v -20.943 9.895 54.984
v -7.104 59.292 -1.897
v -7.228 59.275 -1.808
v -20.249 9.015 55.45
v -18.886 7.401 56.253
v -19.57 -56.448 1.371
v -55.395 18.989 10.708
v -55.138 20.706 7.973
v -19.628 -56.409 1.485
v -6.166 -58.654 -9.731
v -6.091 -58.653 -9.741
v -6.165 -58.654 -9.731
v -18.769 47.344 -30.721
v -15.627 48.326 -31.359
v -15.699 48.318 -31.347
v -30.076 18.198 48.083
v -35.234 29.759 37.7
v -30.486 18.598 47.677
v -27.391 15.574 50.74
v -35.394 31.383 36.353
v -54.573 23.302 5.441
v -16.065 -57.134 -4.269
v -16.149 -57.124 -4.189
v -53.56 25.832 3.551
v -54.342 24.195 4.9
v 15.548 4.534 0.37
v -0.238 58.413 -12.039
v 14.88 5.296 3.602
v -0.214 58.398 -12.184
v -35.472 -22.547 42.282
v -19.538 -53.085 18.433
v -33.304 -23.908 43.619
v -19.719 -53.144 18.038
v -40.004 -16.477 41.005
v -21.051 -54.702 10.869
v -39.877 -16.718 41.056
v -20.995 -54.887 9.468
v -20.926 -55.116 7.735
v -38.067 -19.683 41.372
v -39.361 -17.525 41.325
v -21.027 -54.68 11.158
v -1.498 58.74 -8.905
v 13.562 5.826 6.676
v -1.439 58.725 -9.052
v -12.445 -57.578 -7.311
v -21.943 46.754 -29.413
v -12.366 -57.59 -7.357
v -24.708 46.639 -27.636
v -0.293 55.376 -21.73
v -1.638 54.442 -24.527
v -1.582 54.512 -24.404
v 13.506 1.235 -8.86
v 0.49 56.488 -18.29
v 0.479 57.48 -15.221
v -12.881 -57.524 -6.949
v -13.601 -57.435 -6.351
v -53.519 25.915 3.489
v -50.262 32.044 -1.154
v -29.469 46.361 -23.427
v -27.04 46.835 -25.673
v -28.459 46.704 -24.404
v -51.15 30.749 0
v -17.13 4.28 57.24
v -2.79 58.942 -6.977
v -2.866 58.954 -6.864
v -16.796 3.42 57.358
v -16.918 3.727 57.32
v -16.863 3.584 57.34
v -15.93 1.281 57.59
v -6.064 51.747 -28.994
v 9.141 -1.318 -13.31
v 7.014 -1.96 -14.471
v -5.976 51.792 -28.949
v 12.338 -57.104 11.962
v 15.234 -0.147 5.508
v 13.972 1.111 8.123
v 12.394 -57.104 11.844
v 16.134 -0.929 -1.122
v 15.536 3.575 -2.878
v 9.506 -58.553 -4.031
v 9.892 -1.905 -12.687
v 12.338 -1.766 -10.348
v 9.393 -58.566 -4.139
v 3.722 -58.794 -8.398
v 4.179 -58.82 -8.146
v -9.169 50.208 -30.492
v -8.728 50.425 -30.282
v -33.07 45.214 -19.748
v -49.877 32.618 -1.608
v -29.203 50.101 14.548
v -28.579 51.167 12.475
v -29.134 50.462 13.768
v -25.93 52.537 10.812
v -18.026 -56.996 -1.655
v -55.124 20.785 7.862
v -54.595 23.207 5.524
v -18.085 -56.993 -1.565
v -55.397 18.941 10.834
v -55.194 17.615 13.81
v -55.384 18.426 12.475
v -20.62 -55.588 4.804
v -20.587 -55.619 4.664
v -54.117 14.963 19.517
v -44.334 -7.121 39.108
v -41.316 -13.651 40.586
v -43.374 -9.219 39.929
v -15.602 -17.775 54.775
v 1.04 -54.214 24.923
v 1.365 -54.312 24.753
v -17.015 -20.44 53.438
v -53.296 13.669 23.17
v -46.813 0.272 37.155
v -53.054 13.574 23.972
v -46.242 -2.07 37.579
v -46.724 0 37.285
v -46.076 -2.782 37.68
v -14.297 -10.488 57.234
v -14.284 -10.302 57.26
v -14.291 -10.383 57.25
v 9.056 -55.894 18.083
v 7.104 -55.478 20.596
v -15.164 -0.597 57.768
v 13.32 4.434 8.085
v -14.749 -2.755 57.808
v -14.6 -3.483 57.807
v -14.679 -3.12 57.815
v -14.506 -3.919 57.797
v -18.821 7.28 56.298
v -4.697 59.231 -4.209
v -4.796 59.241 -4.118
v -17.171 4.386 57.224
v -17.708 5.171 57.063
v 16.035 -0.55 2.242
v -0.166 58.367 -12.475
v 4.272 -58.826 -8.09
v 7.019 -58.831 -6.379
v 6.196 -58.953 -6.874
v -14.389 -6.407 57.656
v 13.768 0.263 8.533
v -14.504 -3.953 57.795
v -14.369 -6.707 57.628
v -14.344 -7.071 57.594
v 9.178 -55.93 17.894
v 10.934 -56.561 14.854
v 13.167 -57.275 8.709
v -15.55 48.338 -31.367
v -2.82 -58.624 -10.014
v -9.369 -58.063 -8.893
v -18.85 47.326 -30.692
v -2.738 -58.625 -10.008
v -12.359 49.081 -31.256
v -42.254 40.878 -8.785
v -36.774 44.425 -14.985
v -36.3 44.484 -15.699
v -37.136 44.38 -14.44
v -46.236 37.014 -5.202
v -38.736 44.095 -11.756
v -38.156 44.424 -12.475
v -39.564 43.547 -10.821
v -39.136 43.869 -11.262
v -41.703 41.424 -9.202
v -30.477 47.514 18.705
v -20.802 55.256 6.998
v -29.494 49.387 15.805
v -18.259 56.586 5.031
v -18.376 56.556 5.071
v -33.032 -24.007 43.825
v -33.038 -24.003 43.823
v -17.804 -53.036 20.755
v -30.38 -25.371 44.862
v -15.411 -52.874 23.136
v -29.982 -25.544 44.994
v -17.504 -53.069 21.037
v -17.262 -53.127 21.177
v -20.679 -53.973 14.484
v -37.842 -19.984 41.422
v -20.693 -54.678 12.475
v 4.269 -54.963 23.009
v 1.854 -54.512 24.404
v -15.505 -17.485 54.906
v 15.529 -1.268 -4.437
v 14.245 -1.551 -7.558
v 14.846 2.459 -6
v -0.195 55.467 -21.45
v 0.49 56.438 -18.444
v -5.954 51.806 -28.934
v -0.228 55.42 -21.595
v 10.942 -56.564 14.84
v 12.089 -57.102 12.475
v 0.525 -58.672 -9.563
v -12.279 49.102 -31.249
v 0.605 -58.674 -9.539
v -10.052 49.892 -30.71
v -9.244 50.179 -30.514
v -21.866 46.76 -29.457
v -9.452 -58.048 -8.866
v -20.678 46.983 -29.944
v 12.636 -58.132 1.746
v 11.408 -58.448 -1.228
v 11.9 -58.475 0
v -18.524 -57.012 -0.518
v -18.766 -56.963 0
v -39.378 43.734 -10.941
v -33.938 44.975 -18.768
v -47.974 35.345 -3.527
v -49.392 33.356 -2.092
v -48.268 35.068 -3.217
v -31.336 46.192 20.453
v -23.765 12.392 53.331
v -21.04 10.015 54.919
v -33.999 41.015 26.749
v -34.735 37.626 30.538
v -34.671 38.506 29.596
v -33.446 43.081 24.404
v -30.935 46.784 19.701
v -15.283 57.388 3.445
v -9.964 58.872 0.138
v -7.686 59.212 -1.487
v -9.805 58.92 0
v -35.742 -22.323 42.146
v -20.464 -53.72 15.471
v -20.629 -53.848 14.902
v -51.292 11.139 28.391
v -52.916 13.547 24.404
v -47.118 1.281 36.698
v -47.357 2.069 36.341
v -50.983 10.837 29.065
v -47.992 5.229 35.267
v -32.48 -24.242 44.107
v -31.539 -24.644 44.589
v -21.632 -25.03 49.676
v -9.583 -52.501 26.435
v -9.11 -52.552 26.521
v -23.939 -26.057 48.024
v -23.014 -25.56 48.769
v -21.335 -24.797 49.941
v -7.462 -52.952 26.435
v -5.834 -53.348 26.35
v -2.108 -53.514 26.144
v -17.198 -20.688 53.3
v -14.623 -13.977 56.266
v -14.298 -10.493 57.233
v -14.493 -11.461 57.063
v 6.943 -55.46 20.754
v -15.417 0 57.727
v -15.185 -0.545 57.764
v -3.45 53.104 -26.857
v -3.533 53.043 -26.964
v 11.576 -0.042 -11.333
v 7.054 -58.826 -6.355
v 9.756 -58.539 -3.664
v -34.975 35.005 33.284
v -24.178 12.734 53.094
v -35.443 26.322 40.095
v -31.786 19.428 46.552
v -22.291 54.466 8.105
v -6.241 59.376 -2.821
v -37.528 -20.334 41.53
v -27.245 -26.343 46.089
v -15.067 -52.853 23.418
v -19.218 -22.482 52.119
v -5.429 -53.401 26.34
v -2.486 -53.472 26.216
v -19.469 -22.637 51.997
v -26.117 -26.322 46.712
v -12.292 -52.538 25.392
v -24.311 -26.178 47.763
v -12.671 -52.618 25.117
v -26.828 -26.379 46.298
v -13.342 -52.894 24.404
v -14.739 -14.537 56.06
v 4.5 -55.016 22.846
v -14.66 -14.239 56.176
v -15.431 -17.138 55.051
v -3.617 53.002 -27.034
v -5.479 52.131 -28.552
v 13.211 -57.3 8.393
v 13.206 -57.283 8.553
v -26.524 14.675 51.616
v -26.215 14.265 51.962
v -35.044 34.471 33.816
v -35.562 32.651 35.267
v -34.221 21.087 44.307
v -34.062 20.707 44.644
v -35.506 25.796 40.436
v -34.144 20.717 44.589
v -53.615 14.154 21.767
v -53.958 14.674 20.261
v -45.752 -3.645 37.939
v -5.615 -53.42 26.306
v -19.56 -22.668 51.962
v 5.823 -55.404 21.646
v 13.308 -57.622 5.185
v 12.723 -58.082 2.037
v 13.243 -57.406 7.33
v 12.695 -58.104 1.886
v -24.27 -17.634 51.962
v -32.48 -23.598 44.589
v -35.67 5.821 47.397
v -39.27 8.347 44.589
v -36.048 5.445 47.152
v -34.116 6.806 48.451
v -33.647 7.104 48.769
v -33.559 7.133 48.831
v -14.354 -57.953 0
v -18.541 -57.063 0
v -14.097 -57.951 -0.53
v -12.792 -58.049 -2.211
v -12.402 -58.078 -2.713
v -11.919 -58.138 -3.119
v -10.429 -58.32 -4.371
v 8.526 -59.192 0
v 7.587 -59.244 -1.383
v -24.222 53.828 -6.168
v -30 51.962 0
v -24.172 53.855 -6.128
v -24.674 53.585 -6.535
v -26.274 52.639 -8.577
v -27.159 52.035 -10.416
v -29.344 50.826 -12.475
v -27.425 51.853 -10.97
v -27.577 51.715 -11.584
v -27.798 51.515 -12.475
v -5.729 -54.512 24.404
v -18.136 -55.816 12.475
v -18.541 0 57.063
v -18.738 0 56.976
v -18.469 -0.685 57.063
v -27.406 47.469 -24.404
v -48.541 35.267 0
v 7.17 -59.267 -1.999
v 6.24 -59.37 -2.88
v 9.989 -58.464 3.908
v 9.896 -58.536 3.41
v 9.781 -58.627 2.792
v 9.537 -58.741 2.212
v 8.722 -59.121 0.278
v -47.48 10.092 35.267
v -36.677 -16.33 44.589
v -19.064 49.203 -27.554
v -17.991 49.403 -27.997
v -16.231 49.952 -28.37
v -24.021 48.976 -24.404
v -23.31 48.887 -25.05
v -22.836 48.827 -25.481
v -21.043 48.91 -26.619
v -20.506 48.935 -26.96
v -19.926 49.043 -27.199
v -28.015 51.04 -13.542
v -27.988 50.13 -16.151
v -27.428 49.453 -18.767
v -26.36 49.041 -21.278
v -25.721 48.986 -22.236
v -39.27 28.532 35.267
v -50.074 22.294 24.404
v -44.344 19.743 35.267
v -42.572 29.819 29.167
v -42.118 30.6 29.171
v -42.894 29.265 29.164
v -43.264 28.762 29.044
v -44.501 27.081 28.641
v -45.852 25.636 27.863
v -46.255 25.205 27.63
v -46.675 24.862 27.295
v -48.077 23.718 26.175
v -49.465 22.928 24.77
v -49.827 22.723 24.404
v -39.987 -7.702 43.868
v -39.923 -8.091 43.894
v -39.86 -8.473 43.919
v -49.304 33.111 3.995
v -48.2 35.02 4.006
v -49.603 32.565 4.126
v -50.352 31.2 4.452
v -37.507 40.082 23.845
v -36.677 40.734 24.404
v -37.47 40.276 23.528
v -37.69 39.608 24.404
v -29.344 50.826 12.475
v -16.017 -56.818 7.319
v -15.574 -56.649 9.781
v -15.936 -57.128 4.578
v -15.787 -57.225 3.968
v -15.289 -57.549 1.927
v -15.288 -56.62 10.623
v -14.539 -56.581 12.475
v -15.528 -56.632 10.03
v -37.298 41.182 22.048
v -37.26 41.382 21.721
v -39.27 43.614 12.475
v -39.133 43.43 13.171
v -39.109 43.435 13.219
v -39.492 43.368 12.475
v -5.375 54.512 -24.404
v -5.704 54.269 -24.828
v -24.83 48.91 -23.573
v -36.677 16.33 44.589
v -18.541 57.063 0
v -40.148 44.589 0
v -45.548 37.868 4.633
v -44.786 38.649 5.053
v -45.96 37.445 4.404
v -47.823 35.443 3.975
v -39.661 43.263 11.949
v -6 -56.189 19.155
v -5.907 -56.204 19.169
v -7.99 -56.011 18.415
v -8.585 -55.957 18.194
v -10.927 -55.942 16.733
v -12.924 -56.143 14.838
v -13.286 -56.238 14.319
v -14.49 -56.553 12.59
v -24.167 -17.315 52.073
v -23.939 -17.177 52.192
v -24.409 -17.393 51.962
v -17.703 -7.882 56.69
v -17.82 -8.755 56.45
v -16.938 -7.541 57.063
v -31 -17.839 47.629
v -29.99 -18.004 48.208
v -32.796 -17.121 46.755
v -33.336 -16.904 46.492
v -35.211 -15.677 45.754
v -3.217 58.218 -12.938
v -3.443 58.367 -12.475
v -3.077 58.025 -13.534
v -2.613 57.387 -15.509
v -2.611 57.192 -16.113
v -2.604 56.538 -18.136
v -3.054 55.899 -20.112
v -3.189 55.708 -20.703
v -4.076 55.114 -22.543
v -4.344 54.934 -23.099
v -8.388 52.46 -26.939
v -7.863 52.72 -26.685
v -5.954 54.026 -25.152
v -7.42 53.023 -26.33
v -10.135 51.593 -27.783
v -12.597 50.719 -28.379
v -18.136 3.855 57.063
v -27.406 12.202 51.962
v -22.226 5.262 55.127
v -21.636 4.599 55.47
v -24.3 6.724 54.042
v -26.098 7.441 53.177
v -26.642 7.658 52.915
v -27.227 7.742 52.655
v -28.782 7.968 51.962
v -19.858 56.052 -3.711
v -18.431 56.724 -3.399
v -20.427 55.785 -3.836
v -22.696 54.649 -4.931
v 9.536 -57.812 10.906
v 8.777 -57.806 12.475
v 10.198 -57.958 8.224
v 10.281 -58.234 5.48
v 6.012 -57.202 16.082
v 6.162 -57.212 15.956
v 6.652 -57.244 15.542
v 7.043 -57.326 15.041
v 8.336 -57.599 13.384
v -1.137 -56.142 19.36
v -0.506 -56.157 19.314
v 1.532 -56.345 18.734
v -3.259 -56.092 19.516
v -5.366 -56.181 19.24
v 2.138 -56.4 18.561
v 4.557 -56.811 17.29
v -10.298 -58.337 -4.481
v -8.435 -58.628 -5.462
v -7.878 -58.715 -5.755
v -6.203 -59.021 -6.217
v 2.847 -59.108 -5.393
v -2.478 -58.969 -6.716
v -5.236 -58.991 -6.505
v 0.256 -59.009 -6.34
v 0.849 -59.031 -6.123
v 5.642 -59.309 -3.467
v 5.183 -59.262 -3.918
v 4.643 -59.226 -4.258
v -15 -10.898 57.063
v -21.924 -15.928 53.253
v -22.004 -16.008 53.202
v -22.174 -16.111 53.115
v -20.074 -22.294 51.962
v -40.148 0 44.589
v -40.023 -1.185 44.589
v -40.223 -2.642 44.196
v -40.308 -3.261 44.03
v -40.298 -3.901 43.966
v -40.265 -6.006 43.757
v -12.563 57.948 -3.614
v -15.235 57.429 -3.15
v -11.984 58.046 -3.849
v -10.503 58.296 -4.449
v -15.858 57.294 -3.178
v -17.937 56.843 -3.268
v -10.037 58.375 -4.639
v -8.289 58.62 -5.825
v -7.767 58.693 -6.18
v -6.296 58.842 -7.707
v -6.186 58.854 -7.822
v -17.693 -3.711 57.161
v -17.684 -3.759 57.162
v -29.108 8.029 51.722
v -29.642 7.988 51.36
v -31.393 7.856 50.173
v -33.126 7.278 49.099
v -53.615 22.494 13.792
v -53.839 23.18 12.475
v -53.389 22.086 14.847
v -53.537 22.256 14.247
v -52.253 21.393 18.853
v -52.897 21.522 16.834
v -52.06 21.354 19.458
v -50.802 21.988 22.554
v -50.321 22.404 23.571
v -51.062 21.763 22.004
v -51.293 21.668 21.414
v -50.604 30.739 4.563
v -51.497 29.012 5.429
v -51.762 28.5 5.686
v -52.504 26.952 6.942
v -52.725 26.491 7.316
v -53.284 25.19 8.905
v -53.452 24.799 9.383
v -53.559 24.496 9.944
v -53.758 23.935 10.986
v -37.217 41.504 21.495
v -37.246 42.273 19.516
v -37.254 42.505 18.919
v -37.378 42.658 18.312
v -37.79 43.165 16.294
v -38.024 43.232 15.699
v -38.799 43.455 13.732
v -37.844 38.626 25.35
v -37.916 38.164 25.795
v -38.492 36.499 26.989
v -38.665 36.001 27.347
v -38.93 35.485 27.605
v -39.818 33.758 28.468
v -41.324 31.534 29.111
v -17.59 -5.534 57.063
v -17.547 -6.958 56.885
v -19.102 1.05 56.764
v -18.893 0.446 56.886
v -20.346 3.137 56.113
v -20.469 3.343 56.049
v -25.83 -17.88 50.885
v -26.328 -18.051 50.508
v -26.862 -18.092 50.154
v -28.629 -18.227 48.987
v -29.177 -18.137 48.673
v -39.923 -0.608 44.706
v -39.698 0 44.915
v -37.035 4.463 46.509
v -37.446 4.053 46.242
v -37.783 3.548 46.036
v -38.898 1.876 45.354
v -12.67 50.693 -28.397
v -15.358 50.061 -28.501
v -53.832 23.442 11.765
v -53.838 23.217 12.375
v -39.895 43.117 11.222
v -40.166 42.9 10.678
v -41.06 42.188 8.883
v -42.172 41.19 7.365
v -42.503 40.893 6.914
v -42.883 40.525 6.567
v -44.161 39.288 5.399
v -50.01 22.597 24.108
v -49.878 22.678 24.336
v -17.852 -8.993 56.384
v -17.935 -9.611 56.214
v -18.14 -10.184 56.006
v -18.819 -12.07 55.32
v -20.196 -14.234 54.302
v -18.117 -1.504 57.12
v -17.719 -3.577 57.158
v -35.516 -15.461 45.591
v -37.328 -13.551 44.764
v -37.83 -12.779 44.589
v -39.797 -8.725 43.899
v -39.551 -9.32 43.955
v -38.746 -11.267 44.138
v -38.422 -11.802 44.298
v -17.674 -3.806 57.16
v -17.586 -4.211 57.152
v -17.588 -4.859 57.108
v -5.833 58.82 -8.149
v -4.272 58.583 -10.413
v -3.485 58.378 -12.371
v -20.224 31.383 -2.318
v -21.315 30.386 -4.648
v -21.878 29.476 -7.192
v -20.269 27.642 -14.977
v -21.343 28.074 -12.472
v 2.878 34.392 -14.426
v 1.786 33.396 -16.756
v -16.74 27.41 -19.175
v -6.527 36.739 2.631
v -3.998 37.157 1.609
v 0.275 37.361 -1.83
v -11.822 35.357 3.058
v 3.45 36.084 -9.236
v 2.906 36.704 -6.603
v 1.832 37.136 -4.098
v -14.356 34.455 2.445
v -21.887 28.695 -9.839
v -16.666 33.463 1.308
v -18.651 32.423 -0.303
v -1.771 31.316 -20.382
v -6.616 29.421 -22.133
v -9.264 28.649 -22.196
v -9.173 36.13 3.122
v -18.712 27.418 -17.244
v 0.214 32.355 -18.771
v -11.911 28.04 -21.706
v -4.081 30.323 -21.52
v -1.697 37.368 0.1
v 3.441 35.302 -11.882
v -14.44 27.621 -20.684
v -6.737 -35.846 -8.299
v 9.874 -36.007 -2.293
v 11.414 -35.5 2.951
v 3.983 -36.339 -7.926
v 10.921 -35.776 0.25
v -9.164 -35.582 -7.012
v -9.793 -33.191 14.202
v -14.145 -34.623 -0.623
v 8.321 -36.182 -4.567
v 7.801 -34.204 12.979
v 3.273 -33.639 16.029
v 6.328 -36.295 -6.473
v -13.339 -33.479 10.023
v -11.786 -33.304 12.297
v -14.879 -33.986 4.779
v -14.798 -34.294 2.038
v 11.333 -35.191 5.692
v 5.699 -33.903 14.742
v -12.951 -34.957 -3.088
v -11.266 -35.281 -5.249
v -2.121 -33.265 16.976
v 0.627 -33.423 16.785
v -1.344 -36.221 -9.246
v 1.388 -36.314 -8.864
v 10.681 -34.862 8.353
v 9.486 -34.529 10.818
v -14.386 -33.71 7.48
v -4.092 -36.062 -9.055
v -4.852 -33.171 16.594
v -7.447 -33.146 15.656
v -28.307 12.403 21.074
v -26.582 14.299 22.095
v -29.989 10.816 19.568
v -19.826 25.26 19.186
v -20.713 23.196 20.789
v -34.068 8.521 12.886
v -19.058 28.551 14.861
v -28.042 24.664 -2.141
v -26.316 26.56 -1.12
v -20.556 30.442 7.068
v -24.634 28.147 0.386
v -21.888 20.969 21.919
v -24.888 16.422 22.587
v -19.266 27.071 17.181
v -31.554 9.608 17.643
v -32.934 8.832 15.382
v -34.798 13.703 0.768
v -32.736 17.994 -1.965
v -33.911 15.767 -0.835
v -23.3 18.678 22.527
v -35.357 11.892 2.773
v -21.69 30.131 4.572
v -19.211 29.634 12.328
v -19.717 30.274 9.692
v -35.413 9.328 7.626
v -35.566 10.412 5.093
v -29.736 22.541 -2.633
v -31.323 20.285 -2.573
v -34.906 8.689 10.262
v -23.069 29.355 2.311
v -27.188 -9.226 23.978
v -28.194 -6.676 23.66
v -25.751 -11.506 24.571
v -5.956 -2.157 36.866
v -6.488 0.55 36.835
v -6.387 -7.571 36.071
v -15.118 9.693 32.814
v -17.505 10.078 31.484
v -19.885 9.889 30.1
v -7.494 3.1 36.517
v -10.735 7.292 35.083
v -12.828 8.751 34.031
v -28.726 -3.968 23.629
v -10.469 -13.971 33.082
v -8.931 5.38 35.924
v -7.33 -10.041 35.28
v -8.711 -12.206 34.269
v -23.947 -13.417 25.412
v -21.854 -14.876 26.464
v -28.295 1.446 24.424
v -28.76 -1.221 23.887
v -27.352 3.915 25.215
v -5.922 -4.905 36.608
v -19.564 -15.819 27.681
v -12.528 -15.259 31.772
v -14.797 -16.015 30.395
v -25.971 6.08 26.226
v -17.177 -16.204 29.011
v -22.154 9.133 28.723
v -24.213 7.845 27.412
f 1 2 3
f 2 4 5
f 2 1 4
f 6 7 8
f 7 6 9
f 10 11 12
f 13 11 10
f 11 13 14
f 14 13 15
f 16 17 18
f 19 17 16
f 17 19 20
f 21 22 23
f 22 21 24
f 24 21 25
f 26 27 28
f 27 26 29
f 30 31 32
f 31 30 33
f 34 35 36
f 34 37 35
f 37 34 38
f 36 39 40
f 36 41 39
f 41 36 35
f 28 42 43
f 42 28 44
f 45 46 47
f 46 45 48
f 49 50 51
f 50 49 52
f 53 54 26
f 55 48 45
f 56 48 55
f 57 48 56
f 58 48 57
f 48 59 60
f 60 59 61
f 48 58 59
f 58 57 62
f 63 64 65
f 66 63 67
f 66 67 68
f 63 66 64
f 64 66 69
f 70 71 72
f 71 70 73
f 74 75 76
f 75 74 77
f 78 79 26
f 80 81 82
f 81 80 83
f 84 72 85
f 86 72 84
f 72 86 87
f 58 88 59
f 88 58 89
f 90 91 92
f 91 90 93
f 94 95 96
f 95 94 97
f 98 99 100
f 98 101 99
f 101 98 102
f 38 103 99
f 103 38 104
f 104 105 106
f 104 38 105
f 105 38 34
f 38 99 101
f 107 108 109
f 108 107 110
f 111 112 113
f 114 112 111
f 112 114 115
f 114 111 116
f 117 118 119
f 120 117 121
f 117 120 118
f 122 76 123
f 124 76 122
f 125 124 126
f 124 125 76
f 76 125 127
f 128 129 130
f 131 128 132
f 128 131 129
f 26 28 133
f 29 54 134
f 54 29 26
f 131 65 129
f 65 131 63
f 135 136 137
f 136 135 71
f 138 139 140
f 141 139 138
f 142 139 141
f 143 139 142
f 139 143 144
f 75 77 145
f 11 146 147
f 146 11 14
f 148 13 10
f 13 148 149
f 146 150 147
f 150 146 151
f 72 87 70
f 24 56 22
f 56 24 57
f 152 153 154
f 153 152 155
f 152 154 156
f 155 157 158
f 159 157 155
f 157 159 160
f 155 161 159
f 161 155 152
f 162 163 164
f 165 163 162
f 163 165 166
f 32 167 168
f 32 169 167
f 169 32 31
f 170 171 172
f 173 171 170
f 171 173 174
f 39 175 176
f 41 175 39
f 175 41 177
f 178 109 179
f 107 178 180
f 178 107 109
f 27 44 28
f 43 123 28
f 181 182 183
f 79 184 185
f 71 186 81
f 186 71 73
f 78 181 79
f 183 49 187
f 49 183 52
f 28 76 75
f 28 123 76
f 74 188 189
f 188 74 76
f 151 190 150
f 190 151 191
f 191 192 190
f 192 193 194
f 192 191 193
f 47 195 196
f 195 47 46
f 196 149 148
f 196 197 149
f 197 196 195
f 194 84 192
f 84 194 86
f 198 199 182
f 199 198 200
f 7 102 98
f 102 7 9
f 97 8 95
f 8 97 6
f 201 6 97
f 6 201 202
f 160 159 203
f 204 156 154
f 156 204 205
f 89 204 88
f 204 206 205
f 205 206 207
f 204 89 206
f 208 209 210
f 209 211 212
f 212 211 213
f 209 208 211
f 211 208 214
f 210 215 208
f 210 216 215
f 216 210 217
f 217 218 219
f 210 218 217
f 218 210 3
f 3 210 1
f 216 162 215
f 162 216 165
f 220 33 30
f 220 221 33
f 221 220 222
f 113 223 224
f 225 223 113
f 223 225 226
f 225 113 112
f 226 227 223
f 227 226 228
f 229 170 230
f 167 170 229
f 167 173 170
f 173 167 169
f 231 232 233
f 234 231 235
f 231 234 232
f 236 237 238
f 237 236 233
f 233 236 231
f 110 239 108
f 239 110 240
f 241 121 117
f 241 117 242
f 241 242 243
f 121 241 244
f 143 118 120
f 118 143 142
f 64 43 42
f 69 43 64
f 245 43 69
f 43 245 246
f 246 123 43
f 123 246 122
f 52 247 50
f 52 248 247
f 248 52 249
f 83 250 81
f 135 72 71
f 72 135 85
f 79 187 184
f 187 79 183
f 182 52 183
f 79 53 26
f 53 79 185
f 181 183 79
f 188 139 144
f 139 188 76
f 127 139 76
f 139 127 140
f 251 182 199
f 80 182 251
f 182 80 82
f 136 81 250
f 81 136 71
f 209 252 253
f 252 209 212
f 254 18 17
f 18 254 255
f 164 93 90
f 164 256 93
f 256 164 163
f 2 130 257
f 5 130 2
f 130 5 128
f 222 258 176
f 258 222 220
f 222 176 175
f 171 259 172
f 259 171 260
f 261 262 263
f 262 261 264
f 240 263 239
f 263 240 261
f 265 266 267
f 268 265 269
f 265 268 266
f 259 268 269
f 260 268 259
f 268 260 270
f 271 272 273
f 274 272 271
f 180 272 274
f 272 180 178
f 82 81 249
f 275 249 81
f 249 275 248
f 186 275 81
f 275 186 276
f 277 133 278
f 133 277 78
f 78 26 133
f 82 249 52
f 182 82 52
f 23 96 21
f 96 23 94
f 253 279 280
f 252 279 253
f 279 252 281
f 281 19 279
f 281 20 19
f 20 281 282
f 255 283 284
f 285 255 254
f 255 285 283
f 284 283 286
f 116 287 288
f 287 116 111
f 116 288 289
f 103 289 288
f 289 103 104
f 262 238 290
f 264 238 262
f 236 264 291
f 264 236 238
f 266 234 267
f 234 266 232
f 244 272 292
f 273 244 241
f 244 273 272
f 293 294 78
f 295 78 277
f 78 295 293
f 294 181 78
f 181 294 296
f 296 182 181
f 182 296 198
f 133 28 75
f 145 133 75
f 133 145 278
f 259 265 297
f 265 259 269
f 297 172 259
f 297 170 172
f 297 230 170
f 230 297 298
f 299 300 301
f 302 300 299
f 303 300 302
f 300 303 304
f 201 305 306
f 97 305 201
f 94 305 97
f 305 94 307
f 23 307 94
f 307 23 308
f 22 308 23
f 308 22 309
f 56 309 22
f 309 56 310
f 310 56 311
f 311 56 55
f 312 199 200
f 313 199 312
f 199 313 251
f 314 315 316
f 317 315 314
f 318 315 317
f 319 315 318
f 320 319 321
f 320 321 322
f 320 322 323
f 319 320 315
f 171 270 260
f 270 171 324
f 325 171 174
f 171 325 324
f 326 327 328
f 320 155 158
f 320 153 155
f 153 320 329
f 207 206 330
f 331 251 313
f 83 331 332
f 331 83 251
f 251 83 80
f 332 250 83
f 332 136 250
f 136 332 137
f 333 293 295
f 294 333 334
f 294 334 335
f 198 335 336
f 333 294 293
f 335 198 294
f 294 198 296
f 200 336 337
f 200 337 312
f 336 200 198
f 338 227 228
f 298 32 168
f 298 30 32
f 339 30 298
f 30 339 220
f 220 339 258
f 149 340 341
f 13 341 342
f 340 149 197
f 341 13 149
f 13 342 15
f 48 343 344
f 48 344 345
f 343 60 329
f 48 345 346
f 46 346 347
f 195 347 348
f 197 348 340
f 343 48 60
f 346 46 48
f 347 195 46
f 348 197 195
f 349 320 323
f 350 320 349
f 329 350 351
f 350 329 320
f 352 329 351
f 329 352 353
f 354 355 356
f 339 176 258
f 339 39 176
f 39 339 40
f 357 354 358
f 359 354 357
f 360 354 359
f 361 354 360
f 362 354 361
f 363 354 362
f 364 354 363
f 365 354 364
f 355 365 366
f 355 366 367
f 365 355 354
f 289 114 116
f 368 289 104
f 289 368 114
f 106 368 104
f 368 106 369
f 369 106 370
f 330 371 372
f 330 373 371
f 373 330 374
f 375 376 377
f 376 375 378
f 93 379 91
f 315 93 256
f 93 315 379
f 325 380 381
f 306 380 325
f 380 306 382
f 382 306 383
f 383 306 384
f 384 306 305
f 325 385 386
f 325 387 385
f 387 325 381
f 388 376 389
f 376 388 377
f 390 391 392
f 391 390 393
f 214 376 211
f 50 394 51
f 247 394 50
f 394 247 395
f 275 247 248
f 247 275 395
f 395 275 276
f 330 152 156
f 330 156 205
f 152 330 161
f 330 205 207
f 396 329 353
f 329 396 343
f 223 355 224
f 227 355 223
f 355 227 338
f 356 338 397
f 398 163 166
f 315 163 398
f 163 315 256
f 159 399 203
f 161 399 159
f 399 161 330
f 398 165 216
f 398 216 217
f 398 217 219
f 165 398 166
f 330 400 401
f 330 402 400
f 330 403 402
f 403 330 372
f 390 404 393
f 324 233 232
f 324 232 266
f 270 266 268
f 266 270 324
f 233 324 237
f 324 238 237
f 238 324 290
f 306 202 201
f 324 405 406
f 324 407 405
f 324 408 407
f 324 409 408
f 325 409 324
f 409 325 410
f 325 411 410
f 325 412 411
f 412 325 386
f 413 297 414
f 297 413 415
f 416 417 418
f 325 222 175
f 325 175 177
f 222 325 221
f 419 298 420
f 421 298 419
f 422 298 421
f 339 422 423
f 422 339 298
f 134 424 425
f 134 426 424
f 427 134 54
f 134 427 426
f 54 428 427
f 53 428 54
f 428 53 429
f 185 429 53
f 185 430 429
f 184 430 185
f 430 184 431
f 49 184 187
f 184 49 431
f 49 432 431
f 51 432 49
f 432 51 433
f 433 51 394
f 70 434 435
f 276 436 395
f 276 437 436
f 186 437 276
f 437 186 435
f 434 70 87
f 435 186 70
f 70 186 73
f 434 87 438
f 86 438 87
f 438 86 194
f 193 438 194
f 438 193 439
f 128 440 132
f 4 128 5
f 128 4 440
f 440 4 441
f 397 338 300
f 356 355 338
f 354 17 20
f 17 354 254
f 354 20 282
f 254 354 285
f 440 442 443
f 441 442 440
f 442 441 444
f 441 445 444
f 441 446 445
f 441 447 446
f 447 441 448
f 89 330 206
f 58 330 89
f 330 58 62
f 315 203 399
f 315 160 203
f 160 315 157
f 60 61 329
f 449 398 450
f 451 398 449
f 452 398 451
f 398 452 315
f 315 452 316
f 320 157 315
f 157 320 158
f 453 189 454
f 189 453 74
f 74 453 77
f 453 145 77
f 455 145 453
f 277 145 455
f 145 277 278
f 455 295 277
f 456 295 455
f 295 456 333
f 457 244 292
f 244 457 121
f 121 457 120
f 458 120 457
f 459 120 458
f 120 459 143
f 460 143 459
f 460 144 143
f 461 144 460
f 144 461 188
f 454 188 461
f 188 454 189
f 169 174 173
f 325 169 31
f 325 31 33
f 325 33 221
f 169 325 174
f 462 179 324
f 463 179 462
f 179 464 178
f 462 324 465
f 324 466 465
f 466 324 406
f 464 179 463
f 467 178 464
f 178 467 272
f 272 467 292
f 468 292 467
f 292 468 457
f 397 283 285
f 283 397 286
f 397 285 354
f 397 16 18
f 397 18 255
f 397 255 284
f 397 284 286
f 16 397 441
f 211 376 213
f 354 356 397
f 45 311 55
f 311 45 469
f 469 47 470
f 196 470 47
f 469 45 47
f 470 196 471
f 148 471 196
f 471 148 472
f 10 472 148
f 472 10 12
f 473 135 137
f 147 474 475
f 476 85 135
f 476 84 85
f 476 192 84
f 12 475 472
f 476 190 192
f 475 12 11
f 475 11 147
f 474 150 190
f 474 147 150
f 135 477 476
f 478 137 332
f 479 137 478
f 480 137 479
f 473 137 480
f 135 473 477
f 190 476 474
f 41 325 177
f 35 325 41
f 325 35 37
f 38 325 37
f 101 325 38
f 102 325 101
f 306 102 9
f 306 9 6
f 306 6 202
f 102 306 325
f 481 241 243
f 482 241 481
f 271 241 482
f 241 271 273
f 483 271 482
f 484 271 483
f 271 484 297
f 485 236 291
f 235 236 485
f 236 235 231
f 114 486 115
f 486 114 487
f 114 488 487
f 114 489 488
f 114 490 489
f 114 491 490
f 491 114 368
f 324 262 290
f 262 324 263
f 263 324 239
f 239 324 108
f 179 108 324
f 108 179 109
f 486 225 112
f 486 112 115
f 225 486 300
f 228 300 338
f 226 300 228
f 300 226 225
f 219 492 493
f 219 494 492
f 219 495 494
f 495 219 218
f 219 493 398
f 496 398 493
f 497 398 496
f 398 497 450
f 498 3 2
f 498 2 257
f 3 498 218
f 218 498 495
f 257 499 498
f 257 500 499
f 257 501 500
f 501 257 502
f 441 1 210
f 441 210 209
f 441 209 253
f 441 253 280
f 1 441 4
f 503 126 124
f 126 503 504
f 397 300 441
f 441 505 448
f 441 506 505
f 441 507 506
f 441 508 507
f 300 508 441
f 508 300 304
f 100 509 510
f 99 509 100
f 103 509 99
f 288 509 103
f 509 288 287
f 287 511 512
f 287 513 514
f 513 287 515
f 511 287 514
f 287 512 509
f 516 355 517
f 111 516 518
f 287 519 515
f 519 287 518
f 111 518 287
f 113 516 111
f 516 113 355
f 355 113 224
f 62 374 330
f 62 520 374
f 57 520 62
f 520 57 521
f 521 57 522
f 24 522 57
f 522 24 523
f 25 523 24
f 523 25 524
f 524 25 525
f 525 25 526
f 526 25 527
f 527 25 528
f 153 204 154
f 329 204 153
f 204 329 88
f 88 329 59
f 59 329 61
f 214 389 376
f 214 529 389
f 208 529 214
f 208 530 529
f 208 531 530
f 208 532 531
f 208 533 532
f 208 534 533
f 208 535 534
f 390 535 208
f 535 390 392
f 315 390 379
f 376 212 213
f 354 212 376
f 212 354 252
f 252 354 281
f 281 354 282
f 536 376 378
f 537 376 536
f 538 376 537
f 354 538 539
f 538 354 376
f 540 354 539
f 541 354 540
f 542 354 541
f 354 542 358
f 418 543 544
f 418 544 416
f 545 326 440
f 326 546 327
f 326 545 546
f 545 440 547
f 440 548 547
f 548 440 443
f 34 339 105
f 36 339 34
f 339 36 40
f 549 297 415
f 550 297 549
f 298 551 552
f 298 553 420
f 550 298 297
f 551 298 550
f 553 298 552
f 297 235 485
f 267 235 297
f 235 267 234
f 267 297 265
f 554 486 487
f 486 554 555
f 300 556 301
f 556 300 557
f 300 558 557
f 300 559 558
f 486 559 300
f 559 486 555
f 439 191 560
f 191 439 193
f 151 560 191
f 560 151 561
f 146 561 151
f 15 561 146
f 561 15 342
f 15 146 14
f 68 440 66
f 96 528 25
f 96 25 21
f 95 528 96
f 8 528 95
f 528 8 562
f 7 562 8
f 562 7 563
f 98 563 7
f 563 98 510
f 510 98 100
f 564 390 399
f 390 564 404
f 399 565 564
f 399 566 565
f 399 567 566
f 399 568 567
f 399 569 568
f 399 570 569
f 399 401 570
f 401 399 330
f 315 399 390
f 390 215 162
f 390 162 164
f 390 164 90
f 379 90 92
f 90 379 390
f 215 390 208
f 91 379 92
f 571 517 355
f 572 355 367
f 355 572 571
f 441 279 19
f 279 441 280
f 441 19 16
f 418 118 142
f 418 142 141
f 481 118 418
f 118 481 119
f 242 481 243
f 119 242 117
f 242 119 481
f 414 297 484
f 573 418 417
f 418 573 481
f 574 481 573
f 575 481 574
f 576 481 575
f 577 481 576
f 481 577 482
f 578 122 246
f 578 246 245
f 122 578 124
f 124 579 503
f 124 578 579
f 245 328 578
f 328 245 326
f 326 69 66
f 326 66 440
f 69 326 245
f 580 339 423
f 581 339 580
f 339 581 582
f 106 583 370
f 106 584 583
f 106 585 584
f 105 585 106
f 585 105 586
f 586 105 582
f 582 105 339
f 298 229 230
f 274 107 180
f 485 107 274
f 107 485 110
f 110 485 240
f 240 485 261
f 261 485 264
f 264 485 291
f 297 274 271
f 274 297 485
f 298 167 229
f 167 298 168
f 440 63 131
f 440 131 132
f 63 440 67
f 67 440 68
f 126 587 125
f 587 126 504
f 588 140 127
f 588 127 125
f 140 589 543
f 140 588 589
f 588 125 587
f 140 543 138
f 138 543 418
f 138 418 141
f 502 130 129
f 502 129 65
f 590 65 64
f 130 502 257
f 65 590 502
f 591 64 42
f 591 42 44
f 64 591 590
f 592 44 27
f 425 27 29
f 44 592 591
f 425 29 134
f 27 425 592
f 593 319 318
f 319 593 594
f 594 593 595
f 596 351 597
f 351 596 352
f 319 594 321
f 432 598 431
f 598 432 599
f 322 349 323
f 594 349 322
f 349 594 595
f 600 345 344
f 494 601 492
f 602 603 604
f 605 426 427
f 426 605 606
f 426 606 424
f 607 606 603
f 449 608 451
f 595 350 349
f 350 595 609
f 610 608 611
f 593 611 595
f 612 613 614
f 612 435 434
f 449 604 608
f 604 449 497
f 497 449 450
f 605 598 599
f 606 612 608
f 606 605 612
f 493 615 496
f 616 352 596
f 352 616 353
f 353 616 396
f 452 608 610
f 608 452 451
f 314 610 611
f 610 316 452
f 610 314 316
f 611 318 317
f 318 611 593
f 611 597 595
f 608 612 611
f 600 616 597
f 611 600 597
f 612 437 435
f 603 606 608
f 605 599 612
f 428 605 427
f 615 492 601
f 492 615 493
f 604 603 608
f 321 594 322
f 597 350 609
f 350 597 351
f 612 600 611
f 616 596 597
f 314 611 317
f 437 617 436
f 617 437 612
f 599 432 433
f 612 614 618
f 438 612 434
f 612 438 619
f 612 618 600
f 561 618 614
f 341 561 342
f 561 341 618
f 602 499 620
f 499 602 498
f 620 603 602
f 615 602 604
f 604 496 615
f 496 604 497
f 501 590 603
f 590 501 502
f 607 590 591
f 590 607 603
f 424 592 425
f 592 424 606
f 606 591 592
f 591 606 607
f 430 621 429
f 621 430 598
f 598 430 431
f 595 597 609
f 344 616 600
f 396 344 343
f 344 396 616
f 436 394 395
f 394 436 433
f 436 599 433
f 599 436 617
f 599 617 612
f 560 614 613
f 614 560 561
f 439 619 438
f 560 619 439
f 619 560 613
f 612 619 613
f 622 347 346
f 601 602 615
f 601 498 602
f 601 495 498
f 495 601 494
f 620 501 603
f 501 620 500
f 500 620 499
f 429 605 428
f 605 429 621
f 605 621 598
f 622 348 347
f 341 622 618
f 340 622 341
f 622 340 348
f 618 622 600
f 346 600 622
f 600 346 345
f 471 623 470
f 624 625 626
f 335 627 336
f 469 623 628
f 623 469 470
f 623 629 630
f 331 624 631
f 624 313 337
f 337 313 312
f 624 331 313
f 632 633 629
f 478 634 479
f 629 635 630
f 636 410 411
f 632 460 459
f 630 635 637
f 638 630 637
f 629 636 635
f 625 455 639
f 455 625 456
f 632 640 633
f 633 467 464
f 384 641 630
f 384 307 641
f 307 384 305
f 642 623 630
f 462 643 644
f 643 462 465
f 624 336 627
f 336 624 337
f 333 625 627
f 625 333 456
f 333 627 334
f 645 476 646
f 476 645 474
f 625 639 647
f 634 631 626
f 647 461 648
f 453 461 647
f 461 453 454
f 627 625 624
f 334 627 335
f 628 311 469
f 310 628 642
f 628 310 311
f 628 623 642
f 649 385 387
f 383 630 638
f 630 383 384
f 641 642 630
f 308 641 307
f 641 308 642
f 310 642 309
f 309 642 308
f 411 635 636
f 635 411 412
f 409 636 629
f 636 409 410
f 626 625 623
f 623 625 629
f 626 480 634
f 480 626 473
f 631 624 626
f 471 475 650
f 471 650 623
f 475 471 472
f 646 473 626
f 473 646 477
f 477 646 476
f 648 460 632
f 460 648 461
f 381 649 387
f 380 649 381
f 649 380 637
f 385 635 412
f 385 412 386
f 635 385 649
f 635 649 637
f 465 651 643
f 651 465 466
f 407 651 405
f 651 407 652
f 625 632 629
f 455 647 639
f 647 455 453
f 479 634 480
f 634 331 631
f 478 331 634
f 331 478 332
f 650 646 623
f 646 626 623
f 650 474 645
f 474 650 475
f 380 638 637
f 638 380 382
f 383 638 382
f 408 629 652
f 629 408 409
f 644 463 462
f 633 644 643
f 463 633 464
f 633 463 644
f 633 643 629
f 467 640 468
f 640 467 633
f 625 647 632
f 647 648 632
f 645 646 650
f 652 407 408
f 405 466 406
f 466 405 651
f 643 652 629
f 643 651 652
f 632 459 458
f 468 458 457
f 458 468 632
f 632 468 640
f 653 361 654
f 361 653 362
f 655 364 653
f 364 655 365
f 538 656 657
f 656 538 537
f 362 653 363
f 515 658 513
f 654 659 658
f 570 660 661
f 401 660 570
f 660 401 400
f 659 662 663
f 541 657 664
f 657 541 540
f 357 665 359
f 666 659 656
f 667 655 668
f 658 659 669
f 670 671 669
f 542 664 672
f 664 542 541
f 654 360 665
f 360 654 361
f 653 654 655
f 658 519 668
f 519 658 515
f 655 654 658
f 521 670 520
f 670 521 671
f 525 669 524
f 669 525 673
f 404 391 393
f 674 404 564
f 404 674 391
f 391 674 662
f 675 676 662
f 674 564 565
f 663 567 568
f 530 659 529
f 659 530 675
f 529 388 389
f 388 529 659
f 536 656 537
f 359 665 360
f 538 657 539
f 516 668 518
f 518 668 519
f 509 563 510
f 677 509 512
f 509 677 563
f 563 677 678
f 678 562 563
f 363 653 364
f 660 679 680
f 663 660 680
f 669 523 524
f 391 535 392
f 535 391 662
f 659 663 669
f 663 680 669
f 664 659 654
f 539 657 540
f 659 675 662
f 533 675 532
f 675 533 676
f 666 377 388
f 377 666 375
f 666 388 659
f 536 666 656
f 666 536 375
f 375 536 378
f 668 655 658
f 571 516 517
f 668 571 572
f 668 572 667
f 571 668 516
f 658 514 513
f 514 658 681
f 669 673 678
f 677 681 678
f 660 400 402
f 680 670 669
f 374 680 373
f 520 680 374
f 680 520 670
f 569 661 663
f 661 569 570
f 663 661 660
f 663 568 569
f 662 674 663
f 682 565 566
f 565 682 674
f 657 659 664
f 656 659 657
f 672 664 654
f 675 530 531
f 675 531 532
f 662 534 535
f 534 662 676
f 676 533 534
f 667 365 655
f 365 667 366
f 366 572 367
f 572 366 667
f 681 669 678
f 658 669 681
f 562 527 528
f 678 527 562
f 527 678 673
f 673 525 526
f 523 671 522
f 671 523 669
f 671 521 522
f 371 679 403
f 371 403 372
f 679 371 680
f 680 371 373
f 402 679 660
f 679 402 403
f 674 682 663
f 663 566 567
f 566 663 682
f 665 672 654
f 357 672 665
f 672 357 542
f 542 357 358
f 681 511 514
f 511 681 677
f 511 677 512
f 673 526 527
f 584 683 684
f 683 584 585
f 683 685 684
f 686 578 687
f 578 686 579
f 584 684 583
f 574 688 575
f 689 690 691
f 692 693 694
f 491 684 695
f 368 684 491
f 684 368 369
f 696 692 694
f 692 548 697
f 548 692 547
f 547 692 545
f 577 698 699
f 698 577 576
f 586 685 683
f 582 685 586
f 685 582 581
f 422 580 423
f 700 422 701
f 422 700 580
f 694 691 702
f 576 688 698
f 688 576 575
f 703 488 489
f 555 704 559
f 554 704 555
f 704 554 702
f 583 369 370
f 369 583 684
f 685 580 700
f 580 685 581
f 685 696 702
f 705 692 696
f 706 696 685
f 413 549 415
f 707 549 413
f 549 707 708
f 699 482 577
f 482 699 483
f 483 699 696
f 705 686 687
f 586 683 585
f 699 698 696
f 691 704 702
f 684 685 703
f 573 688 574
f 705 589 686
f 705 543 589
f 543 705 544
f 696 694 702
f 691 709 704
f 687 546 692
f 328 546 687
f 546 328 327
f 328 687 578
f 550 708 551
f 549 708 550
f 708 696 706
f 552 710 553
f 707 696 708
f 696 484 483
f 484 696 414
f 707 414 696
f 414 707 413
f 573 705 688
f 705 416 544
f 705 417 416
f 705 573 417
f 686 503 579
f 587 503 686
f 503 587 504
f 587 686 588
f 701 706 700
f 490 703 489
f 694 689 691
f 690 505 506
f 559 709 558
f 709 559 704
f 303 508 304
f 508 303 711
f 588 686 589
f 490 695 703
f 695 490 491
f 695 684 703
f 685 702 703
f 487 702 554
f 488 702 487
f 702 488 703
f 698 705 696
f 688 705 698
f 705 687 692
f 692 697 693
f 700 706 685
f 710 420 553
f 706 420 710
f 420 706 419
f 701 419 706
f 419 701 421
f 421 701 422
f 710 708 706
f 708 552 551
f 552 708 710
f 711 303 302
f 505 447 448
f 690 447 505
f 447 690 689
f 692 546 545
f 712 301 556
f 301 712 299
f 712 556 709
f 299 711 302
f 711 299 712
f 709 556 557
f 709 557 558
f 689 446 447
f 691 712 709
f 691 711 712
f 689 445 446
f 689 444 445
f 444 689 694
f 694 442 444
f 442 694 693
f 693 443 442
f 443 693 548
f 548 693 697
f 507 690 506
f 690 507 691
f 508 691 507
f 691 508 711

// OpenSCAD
difference() {
	intersection() {
		hull() {
			rotate(a = -150.5328343081, v = [-0.1206323900, -0.4769043344, 0.0000000000]) {
				rotate(a = -90.0000000000, v = [0.6712971803, -0.7411882998, 0.0000000000]) {
					cylinder(h = 60, r = 16.2000000000);
				}
			}
			rotate(a = -150.5328343081, v = [-0.1206323900, -0.4769043344, 0.0000000000]) {
				rotate(a = -90.0000000000, v = [-0.8896774161, 0.4565896356, 0.0000000000]) {
					cylinder(h = 60, r = 16.2000000000);
				}
			}
			rotate(a = -150.5328343081, v = [-0.1206323900, -0.4769043344, 0.0000000000]) {
				rotate(a = -133.4303559138, v = [0.1813528847, -0.7032018797, 0.0000000000]) {
					cylinder(h = 60, r = 16.2000000000);
				}
			}
			rotate(a = -150.5328343081, v = [-0.1206323900, -0.4769043344, 0.0000000000]) {
				rotate(a = -167.9994481359, v = [-0.1937545976, 0.0754343741, 0.0000000000]) {
					cylinder(h = 60, r = 16.2000000000);
				}
			}
		}
		sphere(r = 60);
	}
	union() {
		rotate(a = -150.5328343081, v = [-0.1206323900, -0.4769043344, 0.0000000000]) {
			rotate(a = -90.0000000000, v = [0.6712971803, -0.7411882998, 0.0000000000]) {
				translate(v = [0, 0, 35]) {
					cylinder(h = 100, r = 13.2000000000);
				}
			}
		}
		rotate(a = -150.5328343081, v = [-0.1206323900, -0.4769043344, 0.0000000000]) {
			rotate(a = -90.0000000000, v = [-0.8896774161, 0.4565896356, 0.0000000000]) {
				translate(v = [0, 0, 35]) {
					cylinder(h = 100, r = 13.2000000000);
				}
			}
		}
		rotate(a = -150.5328343081, v = [-0.1206323900, -0.4769043344, 0.0000000000]) {
			rotate(a = -133.4303559138, v = [0.1813528847, -0.7032018797, 0.0000000000]) {
				translate(v = [0, 0, 35]) {
					cylinder(h = 100, r = 13.2000000000);
				}
			}
		}
		rotate(a = -150.5328343081, v = [-0.1206323900, -0.4769043344, 0.0000000000]) {
			rotate(a = -167.9994481359, v = [-0.1937545976, 0.0754343741, 0.0000000000]) {
				translate(v = [0, 0, 35]) {
					cylinder(h = 100, r = 13.2000000000);
				}
			}
		}
	}
}
